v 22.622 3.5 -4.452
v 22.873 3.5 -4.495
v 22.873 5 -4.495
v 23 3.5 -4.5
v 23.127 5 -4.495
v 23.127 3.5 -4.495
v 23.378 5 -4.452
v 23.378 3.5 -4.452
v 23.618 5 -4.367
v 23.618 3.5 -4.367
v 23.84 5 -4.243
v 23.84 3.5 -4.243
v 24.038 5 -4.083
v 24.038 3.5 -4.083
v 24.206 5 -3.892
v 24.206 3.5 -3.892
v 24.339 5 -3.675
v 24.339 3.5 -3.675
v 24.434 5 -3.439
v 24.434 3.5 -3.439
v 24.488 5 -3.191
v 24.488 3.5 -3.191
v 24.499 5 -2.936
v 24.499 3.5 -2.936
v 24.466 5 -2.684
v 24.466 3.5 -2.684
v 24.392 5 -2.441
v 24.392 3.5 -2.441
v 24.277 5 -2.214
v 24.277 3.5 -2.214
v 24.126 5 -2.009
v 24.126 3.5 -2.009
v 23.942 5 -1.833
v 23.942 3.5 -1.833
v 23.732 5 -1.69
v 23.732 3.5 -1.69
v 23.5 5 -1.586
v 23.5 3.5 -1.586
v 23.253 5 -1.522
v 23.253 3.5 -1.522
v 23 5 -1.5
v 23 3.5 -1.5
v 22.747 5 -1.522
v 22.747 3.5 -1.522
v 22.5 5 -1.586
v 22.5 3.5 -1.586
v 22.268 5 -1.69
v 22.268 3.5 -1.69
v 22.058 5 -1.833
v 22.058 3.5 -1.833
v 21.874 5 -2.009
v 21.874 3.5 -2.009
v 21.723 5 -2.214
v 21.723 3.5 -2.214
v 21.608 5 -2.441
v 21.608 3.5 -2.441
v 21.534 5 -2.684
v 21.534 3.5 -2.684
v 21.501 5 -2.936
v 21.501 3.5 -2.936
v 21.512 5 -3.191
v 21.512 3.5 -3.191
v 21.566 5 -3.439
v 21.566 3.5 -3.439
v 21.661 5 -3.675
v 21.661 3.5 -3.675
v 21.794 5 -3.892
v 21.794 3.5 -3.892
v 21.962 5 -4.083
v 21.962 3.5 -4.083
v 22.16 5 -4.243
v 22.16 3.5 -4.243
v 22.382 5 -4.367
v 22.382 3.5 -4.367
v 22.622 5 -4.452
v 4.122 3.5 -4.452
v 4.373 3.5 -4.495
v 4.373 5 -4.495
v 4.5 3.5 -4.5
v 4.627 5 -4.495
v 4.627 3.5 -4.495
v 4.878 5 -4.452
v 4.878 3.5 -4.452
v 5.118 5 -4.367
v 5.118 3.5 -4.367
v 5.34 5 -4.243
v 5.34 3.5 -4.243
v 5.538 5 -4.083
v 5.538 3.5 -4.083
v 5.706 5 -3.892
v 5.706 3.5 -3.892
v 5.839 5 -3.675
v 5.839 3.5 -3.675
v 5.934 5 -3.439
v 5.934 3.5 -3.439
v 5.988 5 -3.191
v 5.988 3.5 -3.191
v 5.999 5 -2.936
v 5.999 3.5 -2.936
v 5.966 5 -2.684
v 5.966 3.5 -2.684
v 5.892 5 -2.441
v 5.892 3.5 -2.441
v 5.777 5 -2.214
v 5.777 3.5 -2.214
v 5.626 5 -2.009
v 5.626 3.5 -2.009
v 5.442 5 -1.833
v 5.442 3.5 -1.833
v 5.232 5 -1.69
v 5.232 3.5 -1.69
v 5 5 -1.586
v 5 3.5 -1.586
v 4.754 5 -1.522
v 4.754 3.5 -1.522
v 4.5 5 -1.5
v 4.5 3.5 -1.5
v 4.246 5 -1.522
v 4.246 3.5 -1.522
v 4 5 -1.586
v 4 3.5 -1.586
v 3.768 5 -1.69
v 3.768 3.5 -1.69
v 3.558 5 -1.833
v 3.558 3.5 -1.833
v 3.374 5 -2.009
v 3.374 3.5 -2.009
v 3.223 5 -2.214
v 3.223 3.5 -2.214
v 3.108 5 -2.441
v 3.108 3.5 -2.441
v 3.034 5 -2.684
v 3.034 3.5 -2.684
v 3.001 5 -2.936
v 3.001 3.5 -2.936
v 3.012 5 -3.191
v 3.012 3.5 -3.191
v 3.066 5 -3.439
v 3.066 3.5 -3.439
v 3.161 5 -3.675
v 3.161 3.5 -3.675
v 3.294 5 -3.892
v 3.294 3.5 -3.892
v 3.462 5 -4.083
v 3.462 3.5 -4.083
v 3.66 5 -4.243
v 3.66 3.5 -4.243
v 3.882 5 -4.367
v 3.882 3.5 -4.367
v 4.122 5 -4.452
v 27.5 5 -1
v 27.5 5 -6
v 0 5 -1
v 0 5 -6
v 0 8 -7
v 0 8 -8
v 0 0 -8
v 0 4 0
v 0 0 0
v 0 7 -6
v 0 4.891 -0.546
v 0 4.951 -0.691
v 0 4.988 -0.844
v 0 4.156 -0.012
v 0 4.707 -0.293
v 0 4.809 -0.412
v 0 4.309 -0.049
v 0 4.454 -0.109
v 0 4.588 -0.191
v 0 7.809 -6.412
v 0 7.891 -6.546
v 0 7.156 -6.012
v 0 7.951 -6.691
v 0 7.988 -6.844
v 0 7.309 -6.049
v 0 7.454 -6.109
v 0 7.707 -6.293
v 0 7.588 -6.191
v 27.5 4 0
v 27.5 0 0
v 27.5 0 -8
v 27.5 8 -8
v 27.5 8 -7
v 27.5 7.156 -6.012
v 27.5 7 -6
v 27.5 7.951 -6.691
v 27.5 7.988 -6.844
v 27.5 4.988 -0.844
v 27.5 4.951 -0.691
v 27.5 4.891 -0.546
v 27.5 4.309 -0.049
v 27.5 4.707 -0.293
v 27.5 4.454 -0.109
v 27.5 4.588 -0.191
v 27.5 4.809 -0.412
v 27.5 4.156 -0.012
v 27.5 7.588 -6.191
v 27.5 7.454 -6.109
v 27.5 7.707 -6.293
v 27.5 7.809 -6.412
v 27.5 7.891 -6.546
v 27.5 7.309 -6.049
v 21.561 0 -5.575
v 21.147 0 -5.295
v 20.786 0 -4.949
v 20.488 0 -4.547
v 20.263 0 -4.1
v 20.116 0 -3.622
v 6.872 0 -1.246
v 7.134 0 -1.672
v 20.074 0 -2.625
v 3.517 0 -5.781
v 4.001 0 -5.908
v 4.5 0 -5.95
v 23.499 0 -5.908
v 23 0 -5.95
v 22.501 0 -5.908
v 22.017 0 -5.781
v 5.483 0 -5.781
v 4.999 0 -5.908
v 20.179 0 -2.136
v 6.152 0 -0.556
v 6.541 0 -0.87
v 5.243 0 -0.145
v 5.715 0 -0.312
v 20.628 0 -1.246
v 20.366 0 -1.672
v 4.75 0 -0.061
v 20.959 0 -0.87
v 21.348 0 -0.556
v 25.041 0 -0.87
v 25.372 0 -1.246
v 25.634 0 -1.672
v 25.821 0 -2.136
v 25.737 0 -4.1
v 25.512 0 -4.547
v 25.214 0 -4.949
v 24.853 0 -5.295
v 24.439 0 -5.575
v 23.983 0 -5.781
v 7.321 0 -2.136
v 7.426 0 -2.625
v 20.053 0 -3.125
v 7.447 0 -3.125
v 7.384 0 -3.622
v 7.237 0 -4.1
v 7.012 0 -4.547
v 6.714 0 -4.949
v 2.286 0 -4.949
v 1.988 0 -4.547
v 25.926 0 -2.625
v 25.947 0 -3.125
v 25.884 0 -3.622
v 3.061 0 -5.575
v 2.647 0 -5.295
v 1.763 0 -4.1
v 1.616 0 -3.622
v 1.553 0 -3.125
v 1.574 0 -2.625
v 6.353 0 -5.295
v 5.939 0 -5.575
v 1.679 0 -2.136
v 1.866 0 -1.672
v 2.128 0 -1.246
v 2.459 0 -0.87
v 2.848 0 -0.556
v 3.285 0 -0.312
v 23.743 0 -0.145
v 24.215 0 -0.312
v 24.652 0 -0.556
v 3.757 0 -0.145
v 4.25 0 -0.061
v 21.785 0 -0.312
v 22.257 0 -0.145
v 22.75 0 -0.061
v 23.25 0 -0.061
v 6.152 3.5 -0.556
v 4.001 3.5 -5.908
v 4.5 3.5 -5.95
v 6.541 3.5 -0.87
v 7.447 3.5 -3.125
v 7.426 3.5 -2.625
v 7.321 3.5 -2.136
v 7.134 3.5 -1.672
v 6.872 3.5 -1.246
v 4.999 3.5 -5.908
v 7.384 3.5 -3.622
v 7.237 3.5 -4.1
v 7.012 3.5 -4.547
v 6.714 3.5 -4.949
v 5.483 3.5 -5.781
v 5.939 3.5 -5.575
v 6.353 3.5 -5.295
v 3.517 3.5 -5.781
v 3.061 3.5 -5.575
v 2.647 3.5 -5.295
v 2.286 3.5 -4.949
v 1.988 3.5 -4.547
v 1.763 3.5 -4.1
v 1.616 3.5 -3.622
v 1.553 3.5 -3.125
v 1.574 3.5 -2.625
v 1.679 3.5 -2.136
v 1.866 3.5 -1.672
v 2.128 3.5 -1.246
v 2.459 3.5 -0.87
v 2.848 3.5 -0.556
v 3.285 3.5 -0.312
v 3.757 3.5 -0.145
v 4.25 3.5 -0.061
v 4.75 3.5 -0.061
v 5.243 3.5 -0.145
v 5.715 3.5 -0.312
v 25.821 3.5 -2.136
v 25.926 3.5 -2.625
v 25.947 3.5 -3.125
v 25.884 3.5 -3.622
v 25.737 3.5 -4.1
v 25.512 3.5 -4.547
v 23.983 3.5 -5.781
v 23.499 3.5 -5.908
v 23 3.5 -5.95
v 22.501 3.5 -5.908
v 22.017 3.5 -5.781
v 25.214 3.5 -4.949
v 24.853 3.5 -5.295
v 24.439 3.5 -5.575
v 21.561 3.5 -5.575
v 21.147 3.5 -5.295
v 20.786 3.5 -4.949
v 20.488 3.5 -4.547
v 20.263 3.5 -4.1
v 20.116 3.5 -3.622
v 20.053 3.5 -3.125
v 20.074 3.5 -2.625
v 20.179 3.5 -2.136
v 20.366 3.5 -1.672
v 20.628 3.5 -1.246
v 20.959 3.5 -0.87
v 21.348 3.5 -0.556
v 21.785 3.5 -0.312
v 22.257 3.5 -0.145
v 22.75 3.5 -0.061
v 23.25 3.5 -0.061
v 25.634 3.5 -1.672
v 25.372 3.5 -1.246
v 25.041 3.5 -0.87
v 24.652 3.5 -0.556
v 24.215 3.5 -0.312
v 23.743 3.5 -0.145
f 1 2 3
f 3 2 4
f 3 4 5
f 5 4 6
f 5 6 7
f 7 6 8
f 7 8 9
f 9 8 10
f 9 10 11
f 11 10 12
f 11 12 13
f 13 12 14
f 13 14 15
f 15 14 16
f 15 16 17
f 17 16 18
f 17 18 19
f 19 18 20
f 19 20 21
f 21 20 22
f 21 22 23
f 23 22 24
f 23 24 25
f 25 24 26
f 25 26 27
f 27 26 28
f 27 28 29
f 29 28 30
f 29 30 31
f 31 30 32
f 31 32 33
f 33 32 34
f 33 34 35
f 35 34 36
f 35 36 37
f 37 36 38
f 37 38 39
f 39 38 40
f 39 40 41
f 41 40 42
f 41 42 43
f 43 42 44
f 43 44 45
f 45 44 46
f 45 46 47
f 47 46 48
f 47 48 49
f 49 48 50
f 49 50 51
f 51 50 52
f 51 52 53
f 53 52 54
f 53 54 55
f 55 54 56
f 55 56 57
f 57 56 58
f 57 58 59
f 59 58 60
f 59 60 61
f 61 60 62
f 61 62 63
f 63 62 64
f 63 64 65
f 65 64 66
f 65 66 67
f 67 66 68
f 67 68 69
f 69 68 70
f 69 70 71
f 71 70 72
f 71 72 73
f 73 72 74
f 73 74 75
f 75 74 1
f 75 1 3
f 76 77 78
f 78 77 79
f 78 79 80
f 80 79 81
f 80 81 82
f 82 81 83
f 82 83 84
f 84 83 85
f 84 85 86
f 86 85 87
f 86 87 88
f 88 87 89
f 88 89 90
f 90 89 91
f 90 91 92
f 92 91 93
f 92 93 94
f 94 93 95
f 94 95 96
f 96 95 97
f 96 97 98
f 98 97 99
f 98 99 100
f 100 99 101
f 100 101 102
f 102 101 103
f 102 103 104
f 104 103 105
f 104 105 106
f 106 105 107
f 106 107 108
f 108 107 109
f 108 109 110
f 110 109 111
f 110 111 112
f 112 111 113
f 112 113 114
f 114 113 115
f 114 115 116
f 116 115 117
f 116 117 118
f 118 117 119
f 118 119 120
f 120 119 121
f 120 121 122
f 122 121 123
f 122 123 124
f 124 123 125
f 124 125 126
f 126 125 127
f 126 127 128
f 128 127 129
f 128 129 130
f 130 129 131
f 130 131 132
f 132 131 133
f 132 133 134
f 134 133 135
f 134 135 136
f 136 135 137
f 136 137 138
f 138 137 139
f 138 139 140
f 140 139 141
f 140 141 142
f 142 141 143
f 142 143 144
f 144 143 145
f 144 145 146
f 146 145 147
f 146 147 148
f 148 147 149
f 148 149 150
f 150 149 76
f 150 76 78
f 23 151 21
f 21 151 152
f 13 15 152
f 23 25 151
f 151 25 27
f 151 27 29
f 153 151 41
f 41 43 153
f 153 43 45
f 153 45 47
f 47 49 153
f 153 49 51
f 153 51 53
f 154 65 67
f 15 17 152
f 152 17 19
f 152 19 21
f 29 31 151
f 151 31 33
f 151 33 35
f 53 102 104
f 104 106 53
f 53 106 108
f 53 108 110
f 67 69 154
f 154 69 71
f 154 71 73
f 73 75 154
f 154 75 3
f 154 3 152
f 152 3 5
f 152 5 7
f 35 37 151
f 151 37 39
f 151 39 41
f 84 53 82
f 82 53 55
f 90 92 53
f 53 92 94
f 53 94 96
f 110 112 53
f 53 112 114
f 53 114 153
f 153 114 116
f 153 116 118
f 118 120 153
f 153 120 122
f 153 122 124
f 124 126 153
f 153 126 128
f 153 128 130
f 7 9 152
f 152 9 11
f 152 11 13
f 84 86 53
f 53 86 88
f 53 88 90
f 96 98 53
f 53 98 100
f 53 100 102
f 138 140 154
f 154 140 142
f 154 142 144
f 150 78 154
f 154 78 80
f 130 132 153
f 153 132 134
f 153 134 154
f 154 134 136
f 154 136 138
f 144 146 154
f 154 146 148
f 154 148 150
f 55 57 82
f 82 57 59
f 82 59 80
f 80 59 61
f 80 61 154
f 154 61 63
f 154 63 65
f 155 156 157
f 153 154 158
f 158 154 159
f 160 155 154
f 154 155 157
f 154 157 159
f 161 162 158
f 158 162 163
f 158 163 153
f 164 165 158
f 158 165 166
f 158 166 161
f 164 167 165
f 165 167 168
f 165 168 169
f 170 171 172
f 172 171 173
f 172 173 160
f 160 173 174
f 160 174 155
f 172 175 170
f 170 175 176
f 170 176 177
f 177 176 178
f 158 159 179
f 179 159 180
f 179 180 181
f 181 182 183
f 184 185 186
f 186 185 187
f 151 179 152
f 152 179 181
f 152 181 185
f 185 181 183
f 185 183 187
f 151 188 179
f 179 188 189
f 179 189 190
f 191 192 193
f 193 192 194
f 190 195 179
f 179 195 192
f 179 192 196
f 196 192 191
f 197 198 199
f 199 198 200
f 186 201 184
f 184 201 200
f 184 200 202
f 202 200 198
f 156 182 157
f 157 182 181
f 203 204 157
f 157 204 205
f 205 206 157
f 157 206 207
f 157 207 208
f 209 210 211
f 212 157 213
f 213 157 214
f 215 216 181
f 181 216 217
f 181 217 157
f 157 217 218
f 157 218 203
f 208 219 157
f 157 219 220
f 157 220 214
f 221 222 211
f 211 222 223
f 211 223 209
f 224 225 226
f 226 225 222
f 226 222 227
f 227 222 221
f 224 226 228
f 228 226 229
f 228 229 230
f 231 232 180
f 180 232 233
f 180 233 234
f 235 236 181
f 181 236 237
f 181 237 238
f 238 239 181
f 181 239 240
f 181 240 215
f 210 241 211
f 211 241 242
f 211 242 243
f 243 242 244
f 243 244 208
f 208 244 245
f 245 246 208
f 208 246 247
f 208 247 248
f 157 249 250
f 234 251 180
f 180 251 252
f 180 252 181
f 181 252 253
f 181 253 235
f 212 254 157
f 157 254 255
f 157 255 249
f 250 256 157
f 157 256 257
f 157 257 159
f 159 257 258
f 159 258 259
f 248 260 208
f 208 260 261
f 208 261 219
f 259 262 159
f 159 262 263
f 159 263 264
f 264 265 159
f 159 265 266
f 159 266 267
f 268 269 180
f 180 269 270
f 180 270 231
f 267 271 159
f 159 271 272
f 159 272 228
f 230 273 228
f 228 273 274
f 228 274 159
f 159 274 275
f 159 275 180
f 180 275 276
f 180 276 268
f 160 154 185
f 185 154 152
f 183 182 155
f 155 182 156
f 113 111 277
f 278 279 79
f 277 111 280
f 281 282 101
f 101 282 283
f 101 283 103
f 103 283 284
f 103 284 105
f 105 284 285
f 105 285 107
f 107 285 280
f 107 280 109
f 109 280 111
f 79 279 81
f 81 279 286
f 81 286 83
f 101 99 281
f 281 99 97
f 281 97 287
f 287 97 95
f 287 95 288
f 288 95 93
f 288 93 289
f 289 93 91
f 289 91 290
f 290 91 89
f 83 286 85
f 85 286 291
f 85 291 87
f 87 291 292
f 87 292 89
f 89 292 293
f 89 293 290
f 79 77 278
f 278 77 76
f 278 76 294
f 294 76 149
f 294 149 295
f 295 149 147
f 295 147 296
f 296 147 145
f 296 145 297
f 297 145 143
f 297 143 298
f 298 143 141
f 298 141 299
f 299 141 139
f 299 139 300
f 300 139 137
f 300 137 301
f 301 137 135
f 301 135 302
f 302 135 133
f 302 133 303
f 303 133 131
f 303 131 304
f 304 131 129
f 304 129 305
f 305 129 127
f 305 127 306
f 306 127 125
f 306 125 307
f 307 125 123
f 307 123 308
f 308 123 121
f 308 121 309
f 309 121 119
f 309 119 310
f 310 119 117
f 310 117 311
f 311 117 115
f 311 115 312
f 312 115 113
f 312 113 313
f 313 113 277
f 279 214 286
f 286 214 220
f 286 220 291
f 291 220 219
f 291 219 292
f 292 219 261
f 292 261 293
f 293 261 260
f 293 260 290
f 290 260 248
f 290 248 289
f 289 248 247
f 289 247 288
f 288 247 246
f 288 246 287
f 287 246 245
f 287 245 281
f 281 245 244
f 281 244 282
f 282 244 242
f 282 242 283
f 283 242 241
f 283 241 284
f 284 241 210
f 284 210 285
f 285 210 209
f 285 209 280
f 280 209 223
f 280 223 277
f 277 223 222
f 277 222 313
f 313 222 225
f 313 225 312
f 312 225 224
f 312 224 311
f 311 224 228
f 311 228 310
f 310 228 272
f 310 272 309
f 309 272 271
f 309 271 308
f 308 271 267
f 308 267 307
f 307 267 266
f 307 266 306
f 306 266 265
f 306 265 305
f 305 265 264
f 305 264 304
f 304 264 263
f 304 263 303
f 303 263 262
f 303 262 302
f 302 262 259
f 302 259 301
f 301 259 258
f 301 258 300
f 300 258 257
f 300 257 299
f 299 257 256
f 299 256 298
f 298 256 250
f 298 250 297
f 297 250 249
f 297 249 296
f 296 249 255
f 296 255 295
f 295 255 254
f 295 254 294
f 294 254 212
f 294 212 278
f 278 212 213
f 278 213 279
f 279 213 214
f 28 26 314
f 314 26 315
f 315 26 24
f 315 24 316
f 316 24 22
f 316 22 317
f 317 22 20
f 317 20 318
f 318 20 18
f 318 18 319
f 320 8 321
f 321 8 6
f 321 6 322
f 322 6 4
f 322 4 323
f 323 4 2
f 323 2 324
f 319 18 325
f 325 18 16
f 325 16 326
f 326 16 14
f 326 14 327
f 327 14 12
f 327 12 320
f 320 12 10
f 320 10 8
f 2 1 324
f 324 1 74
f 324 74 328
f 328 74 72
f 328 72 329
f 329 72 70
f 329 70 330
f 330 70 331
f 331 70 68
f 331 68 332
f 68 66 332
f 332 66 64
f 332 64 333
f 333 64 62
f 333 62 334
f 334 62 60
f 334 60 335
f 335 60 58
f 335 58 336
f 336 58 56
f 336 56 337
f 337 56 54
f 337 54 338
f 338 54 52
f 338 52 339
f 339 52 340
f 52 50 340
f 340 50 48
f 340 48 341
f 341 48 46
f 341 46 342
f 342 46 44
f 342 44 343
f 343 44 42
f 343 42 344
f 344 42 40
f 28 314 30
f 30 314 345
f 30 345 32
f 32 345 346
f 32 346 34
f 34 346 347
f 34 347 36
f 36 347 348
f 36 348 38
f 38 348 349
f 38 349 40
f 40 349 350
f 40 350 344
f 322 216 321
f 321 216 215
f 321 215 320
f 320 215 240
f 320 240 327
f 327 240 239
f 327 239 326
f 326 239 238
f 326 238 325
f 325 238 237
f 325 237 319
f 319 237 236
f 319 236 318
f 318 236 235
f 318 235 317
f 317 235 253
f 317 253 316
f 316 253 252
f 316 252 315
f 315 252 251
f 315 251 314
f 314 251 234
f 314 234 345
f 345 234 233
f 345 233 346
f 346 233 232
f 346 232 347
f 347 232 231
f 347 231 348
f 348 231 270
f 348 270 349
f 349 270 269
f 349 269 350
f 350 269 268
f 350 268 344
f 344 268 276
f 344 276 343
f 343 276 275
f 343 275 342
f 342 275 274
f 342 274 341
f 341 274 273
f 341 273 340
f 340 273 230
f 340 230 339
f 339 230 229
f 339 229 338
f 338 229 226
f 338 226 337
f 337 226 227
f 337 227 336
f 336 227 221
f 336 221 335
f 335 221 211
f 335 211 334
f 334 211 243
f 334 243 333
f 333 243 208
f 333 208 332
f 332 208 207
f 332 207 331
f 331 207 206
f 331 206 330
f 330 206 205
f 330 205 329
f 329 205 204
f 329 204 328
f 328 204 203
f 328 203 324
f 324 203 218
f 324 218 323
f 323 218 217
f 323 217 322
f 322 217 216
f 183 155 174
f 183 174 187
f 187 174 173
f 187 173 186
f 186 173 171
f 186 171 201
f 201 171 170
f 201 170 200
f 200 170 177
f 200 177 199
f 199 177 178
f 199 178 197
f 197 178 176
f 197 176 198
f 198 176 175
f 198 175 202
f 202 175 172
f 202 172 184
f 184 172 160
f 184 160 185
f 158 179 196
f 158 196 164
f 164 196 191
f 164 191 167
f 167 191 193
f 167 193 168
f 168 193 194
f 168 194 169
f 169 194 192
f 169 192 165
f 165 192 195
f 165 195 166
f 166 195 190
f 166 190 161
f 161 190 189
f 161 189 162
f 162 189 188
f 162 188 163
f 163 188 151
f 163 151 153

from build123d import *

# Parameters (mm, degrees)
SKETCH_1_W          = 27.5
SKETCH_1_H          = 8
EXTRUDE_1_DEPTH     = 5
SKETCH_2_W          = 27.5
SKETCH_2_H          = 2
EXTRUDE_2_DEPTH     = 3
SKETCH_3_R          = 1.5
CUT_EXTRUDE_1_DEPTH = 30.07318352
SKETCH_4_R          = 2.95
CUT_EXTRUDE_6_DEPTH = 3.5
FILLET_1_R          = 1
FILLET_2_R          = 1


with BuildPart() as part:
    # Эскиз1 → Бобышка-Вытянуть1 (new body)
    with BuildSketch(Plane(origin=(0, 0, 0), x_dir=(1, 0, 0), z_dir=(0, 1, 0))):
        with Locations((13.75, 4)):
            Rectangle(SKETCH_1_W, SKETCH_1_H)
    extrude(amount=EXTRUDE_1_DEPTH)

    # Эскиз2 → Бобышка-Вытянуть2 (add)
    with BuildSketch(Plane(origin=(0, 5, 0), x_dir=(1, 0, 0), z_dir=(0, 1, 0))):
        with Locations((13.75, 7)):
            Rectangle(SKETCH_2_W, SKETCH_2_H)
    extrude(amount=EXTRUDE_2_DEPTH)

    # Эскиз3 → Вырез-Вытянуть1 (cut, through all)
    with BuildSketch(Plane(origin=(0, 5, 0), x_dir=(1, 0, 0), z_dir=(0, 1, 0))):
        with Locations(Location((4.5, 3, 0), (0, 0, 270))):
            Circle(SKETCH_3_R)
        with Locations(Location((23, 3, 0), (0, 0, 270))):
            Circle(SKETCH_3_R)
    extrude(amount=-CUT_EXTRUDE_1_DEPTH, mode=Mode.SUBTRACT)

    # Эскиз4 → Вырез-Вытянуть6 (cut)
    with BuildSketch(Plane(origin=(0, 0, 0), x_dir=(-1, 0, 0), z_dir=(0, -1, 0))):
        with Locations(Location((-4.5, 3, 0), (0, 0, 90))):
            Circle(SKETCH_4_R)
        with Locations(Location((-23, 3, 0), (0, 0, 90))):
            Circle(SKETCH_4_R)
    extrude(amount=-CUT_EXTRUDE_6_DEPTH, mode=Mode.SUBTRACT)

    # Скругление1
    fillet_1_edges = [part.edges().sort_by_distance(p)[0] for p in [
        (13.75, 8, -6),
    ]]
    fillet(fillet_1_edges, radius=FILLET_1_R)

    # Скругление2
    fillet_2_edges = [part.edges().sort_by_distance(p)[0] for p in [
        (13.75, 5, 0),
    ]]
    fillet(fillet_2_edges, radius=FILLET_2_R)


solid = part.part
